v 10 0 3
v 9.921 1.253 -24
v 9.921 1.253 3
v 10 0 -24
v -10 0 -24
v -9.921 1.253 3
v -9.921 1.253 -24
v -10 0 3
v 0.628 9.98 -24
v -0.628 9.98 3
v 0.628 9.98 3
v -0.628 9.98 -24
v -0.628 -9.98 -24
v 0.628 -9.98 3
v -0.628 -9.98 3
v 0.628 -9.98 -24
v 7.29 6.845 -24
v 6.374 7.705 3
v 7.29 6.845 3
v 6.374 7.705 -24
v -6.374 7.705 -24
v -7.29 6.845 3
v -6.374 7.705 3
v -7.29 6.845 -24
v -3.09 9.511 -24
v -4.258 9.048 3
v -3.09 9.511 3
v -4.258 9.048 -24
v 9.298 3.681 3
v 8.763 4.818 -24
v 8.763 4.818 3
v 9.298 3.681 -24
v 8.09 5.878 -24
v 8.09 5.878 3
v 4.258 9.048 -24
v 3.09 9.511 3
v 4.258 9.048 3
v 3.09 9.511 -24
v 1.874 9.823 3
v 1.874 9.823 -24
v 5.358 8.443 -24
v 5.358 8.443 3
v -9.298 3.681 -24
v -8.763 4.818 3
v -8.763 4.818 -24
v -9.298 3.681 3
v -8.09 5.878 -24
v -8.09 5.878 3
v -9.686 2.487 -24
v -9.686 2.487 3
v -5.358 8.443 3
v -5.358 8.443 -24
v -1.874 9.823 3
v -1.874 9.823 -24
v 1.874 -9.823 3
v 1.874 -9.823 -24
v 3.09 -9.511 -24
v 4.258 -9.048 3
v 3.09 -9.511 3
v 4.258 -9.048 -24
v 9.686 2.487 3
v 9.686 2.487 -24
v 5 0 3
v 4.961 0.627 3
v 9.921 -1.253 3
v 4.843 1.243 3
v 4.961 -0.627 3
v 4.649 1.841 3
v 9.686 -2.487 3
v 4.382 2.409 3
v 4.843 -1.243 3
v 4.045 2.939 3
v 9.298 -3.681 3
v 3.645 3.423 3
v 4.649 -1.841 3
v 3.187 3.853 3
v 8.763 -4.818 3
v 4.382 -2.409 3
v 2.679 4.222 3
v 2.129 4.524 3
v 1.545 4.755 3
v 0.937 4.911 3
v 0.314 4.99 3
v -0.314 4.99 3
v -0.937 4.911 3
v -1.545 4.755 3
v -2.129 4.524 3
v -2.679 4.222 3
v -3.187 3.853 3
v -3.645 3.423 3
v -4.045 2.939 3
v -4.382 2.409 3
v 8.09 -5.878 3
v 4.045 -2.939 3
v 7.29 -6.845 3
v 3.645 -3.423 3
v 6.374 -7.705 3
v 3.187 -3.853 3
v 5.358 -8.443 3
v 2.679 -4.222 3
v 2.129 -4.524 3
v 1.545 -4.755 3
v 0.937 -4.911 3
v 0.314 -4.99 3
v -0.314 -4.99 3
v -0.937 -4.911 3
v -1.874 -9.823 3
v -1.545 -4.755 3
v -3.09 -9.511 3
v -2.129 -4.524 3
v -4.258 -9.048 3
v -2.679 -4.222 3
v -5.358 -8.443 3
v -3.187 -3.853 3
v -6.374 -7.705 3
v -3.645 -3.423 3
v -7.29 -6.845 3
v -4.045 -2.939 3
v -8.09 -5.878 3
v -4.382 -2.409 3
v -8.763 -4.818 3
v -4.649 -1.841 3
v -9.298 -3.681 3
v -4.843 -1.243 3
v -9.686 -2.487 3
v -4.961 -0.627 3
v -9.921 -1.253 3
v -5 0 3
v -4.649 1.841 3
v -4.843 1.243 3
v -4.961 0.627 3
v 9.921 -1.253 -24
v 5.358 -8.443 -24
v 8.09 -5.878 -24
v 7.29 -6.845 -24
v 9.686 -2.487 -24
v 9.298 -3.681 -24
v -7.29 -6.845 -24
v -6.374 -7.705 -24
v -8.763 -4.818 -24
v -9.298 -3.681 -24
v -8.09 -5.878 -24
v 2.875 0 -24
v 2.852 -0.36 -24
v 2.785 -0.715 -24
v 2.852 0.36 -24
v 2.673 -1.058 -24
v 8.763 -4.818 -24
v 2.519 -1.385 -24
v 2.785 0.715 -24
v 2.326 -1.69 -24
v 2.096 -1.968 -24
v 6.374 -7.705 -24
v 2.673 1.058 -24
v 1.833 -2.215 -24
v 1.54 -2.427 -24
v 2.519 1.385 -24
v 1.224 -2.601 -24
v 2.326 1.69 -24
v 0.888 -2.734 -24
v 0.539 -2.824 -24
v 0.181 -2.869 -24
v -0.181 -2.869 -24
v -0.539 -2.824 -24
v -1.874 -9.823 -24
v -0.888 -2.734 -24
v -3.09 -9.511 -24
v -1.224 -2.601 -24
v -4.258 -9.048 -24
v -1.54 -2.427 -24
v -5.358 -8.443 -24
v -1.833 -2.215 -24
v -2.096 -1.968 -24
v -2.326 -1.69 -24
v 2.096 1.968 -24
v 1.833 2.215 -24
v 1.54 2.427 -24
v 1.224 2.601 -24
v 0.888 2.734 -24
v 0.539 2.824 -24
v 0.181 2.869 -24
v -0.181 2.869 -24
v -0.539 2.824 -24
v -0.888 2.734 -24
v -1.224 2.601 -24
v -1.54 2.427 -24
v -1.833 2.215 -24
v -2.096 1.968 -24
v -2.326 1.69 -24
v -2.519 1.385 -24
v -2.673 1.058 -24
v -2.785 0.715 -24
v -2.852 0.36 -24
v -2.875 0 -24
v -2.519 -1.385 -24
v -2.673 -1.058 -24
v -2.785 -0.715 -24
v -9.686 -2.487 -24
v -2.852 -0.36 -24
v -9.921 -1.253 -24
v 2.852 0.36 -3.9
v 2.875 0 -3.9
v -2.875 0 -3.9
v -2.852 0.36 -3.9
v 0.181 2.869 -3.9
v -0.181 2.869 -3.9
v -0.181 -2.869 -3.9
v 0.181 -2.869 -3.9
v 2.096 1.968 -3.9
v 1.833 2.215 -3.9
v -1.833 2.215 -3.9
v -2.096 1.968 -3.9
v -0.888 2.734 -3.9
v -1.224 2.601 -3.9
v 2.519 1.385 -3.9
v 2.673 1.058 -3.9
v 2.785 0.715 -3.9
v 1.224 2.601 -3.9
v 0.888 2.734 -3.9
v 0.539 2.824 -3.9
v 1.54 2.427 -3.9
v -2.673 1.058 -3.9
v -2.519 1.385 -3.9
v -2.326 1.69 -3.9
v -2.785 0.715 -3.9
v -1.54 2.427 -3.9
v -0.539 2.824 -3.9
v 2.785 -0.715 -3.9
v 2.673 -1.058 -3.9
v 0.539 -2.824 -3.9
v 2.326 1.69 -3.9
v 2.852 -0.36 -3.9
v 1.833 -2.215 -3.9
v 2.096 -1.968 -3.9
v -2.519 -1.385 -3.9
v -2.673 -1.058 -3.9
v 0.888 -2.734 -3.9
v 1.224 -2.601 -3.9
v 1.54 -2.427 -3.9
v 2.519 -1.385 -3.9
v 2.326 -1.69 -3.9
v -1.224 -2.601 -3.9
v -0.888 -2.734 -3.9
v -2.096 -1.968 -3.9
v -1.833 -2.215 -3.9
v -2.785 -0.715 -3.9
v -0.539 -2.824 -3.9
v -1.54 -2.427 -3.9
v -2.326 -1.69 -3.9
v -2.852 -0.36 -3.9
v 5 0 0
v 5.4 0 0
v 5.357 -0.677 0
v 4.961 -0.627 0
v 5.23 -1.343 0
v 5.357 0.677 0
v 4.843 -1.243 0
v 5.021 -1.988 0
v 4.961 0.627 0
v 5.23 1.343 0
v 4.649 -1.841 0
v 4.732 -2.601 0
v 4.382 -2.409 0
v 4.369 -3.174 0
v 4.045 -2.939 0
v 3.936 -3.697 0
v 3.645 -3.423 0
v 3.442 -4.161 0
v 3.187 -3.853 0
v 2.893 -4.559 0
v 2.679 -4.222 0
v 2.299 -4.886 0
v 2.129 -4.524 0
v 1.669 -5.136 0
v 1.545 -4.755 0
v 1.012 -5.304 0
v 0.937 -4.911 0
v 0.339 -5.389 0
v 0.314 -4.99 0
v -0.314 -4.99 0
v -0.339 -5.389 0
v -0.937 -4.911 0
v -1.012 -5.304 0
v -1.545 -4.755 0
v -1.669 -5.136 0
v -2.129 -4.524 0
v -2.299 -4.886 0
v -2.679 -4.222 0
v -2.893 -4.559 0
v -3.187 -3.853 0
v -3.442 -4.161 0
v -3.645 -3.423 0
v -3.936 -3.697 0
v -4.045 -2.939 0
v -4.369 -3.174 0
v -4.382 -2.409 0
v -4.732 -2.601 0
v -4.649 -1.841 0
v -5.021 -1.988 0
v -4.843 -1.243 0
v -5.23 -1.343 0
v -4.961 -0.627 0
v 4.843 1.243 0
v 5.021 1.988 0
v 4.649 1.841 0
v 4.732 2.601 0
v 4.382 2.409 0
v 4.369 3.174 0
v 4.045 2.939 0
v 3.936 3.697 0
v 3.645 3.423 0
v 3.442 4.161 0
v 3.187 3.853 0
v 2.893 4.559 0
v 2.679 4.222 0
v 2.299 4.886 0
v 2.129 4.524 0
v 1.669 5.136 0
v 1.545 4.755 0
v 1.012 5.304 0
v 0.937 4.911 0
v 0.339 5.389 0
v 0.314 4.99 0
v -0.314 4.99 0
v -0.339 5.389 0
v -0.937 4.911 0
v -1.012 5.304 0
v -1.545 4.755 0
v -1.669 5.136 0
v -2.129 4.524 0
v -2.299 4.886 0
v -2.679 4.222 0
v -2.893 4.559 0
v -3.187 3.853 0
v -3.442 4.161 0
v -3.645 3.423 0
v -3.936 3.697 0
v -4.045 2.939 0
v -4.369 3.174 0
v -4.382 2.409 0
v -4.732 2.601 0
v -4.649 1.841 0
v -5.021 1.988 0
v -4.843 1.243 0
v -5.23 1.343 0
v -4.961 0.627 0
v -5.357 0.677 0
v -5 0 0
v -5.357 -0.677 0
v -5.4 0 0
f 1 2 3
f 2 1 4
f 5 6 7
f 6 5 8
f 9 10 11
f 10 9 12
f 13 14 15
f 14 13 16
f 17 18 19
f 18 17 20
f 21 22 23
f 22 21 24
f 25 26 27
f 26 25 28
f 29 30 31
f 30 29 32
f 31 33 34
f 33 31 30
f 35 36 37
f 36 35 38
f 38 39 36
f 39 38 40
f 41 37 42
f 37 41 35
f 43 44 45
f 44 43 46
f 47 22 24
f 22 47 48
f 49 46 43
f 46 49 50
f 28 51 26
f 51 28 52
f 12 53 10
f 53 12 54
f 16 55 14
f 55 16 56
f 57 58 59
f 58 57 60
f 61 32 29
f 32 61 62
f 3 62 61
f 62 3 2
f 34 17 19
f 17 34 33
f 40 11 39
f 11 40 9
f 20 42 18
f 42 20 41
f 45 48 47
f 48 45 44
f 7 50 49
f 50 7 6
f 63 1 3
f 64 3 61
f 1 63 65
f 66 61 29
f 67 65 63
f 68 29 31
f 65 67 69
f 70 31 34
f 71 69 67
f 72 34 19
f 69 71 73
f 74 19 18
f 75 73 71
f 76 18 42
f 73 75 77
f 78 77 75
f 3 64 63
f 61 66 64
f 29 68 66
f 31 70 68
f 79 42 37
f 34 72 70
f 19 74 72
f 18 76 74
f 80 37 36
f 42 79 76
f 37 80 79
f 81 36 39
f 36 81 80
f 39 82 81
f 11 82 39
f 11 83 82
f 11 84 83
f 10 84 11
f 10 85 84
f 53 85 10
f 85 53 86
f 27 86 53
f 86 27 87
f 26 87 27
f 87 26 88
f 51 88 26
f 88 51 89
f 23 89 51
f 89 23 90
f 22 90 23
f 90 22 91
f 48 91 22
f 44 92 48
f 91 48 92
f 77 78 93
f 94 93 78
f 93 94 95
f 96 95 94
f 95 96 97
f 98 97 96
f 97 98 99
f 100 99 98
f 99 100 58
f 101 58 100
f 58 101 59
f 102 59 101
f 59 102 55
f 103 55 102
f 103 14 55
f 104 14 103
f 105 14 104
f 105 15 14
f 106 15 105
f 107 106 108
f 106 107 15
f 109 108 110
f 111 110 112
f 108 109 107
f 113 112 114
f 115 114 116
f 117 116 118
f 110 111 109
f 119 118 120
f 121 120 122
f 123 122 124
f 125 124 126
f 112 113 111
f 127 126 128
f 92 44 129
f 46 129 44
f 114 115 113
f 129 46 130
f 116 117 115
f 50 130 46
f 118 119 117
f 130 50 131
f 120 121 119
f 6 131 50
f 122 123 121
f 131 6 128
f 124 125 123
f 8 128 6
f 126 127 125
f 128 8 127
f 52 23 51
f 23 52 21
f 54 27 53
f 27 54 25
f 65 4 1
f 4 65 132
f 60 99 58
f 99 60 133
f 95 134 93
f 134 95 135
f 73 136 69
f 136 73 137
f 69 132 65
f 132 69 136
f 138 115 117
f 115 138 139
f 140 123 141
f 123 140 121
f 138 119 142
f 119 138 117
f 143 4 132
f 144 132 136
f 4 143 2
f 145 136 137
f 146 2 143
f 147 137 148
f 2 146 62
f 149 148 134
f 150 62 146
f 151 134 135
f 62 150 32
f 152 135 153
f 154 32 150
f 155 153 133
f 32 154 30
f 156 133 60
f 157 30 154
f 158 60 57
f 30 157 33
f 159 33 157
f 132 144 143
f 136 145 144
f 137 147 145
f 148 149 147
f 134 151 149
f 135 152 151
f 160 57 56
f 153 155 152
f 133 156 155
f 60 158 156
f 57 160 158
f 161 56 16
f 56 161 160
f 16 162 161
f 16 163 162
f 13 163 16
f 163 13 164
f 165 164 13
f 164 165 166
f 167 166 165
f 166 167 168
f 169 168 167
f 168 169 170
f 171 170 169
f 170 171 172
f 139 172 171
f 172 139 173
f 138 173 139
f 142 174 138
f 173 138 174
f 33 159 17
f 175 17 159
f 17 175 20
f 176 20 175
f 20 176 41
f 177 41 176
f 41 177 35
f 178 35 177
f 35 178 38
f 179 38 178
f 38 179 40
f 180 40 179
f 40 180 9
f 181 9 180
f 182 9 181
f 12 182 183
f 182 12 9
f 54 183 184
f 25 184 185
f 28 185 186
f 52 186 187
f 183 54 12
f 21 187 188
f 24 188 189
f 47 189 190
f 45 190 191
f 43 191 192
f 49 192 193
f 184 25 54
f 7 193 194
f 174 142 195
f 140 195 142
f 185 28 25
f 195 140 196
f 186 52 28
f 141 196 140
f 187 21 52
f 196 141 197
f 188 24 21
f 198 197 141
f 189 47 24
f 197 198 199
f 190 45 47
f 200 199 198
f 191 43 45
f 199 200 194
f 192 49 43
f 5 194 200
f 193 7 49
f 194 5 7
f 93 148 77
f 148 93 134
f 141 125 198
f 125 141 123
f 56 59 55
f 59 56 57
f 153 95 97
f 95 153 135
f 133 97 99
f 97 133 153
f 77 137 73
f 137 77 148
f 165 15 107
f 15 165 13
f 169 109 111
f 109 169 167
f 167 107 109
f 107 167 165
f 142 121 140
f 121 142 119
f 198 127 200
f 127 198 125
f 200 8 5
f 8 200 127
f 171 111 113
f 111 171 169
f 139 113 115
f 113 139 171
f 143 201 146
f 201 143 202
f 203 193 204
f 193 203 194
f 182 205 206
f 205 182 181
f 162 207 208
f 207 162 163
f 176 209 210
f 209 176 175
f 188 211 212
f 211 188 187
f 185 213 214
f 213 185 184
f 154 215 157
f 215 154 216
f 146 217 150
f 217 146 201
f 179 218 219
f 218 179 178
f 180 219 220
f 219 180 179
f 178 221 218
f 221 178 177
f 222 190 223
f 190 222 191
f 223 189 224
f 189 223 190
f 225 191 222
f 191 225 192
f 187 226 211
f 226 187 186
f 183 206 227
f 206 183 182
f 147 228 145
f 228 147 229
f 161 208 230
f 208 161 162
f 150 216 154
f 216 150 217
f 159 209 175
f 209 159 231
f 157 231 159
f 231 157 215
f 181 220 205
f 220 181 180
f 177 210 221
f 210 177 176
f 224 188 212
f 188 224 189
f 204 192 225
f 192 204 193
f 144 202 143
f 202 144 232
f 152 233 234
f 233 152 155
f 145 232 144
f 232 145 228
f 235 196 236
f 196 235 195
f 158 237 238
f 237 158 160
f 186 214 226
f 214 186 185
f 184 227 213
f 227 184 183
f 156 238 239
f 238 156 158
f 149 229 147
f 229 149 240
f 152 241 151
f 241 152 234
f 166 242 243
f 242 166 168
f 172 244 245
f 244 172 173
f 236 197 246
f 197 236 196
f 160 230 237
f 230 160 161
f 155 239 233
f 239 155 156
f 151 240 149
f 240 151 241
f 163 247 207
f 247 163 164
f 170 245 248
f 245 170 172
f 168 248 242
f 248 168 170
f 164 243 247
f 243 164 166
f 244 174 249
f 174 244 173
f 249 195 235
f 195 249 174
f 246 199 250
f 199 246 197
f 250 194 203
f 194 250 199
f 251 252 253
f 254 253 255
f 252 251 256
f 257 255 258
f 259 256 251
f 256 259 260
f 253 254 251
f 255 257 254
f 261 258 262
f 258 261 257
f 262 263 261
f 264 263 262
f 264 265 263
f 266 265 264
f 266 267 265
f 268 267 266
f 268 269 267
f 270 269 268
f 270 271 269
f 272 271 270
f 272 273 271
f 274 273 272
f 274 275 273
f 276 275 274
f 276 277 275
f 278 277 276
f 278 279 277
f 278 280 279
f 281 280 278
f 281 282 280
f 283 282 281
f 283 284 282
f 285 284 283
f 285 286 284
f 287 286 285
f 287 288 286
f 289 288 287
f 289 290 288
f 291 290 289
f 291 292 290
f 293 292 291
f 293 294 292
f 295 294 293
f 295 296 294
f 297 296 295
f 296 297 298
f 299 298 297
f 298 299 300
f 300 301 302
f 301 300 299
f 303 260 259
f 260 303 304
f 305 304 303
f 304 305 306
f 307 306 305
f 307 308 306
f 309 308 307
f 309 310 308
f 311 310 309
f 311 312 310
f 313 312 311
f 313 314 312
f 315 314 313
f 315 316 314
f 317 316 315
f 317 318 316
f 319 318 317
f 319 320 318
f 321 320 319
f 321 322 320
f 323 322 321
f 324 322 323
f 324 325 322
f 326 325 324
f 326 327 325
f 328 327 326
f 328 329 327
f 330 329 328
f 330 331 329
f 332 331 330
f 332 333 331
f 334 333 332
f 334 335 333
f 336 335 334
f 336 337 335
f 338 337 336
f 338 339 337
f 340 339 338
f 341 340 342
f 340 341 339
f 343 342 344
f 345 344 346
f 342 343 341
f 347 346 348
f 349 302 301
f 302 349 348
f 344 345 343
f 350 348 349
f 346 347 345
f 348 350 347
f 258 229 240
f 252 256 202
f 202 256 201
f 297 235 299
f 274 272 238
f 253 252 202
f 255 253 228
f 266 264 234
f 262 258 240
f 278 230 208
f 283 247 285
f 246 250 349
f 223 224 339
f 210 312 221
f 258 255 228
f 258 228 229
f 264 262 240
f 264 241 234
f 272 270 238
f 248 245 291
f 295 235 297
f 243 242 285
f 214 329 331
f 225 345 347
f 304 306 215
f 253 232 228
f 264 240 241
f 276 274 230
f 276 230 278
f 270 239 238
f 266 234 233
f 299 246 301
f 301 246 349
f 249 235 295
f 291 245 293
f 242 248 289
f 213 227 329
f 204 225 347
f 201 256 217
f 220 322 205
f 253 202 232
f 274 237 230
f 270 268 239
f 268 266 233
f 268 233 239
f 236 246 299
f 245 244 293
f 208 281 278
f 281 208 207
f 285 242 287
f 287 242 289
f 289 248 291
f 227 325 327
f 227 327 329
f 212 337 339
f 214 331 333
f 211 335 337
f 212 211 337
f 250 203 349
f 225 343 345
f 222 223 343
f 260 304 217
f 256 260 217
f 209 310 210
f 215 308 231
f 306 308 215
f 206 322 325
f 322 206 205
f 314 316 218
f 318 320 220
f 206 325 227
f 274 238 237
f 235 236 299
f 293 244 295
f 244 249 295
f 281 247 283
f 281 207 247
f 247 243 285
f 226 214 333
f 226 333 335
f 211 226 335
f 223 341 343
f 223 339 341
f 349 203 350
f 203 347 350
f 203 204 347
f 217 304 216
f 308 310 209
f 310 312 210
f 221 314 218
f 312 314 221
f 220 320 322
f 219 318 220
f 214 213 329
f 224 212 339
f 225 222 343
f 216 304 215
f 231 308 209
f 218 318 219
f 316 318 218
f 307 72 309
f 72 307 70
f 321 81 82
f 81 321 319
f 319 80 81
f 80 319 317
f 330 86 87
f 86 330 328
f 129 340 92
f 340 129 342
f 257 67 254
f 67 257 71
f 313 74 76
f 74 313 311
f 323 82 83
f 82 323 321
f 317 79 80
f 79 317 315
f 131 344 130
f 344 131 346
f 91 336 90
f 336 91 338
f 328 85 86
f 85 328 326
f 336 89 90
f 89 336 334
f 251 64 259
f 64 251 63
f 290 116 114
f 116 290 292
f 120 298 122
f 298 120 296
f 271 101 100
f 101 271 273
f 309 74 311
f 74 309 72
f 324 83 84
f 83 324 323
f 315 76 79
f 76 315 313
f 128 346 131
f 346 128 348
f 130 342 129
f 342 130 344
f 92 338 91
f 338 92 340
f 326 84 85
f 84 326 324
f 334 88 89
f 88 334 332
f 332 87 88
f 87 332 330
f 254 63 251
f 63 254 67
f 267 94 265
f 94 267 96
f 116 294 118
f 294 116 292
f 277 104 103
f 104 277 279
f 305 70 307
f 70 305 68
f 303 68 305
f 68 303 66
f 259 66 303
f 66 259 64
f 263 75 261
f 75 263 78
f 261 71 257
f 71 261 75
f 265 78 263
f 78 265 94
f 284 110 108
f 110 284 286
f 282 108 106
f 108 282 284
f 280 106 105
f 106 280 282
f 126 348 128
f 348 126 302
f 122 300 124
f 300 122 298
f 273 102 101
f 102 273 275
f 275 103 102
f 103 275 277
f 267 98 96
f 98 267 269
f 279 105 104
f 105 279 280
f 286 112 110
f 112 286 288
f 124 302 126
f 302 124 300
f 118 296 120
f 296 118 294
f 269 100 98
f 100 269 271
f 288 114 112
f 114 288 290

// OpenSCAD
$fn = 50;

difference() {
	union() {
		translate(v = [0, 0, -24.0]) {
			cylinder(h = 27, r = 10.0);
		}
		#translate(v = [0, 0, -27.0]) {
			cylinder(h = 27, r = 2.875);
		}
	}
	union() {
		translate(v = [0, 0, 0]) {
			rotate(a = [0, 0, 0]) {
				difference() {
					union() {
						translate(v = [0, 0, -27.0]) {
							cylinder(h = 27, r = 2.6);
						}
						translate(v = [0, 0, -3.9]) {
							cylinder(h = 3.9, r1 = 2.875, r2 = 5.4);
						}
						translate(v = [0, 0, -27.0]) {
							cylinder(h = 27, r = 2.875);
						}
						translate(v = [0, 0, -27.0]) {
							cylinder(h = 27, r = 2.6);
						}
					}
					union();
				}
			}
		}
		#cylinder(h = 3, r = 5.0);
	}
}
